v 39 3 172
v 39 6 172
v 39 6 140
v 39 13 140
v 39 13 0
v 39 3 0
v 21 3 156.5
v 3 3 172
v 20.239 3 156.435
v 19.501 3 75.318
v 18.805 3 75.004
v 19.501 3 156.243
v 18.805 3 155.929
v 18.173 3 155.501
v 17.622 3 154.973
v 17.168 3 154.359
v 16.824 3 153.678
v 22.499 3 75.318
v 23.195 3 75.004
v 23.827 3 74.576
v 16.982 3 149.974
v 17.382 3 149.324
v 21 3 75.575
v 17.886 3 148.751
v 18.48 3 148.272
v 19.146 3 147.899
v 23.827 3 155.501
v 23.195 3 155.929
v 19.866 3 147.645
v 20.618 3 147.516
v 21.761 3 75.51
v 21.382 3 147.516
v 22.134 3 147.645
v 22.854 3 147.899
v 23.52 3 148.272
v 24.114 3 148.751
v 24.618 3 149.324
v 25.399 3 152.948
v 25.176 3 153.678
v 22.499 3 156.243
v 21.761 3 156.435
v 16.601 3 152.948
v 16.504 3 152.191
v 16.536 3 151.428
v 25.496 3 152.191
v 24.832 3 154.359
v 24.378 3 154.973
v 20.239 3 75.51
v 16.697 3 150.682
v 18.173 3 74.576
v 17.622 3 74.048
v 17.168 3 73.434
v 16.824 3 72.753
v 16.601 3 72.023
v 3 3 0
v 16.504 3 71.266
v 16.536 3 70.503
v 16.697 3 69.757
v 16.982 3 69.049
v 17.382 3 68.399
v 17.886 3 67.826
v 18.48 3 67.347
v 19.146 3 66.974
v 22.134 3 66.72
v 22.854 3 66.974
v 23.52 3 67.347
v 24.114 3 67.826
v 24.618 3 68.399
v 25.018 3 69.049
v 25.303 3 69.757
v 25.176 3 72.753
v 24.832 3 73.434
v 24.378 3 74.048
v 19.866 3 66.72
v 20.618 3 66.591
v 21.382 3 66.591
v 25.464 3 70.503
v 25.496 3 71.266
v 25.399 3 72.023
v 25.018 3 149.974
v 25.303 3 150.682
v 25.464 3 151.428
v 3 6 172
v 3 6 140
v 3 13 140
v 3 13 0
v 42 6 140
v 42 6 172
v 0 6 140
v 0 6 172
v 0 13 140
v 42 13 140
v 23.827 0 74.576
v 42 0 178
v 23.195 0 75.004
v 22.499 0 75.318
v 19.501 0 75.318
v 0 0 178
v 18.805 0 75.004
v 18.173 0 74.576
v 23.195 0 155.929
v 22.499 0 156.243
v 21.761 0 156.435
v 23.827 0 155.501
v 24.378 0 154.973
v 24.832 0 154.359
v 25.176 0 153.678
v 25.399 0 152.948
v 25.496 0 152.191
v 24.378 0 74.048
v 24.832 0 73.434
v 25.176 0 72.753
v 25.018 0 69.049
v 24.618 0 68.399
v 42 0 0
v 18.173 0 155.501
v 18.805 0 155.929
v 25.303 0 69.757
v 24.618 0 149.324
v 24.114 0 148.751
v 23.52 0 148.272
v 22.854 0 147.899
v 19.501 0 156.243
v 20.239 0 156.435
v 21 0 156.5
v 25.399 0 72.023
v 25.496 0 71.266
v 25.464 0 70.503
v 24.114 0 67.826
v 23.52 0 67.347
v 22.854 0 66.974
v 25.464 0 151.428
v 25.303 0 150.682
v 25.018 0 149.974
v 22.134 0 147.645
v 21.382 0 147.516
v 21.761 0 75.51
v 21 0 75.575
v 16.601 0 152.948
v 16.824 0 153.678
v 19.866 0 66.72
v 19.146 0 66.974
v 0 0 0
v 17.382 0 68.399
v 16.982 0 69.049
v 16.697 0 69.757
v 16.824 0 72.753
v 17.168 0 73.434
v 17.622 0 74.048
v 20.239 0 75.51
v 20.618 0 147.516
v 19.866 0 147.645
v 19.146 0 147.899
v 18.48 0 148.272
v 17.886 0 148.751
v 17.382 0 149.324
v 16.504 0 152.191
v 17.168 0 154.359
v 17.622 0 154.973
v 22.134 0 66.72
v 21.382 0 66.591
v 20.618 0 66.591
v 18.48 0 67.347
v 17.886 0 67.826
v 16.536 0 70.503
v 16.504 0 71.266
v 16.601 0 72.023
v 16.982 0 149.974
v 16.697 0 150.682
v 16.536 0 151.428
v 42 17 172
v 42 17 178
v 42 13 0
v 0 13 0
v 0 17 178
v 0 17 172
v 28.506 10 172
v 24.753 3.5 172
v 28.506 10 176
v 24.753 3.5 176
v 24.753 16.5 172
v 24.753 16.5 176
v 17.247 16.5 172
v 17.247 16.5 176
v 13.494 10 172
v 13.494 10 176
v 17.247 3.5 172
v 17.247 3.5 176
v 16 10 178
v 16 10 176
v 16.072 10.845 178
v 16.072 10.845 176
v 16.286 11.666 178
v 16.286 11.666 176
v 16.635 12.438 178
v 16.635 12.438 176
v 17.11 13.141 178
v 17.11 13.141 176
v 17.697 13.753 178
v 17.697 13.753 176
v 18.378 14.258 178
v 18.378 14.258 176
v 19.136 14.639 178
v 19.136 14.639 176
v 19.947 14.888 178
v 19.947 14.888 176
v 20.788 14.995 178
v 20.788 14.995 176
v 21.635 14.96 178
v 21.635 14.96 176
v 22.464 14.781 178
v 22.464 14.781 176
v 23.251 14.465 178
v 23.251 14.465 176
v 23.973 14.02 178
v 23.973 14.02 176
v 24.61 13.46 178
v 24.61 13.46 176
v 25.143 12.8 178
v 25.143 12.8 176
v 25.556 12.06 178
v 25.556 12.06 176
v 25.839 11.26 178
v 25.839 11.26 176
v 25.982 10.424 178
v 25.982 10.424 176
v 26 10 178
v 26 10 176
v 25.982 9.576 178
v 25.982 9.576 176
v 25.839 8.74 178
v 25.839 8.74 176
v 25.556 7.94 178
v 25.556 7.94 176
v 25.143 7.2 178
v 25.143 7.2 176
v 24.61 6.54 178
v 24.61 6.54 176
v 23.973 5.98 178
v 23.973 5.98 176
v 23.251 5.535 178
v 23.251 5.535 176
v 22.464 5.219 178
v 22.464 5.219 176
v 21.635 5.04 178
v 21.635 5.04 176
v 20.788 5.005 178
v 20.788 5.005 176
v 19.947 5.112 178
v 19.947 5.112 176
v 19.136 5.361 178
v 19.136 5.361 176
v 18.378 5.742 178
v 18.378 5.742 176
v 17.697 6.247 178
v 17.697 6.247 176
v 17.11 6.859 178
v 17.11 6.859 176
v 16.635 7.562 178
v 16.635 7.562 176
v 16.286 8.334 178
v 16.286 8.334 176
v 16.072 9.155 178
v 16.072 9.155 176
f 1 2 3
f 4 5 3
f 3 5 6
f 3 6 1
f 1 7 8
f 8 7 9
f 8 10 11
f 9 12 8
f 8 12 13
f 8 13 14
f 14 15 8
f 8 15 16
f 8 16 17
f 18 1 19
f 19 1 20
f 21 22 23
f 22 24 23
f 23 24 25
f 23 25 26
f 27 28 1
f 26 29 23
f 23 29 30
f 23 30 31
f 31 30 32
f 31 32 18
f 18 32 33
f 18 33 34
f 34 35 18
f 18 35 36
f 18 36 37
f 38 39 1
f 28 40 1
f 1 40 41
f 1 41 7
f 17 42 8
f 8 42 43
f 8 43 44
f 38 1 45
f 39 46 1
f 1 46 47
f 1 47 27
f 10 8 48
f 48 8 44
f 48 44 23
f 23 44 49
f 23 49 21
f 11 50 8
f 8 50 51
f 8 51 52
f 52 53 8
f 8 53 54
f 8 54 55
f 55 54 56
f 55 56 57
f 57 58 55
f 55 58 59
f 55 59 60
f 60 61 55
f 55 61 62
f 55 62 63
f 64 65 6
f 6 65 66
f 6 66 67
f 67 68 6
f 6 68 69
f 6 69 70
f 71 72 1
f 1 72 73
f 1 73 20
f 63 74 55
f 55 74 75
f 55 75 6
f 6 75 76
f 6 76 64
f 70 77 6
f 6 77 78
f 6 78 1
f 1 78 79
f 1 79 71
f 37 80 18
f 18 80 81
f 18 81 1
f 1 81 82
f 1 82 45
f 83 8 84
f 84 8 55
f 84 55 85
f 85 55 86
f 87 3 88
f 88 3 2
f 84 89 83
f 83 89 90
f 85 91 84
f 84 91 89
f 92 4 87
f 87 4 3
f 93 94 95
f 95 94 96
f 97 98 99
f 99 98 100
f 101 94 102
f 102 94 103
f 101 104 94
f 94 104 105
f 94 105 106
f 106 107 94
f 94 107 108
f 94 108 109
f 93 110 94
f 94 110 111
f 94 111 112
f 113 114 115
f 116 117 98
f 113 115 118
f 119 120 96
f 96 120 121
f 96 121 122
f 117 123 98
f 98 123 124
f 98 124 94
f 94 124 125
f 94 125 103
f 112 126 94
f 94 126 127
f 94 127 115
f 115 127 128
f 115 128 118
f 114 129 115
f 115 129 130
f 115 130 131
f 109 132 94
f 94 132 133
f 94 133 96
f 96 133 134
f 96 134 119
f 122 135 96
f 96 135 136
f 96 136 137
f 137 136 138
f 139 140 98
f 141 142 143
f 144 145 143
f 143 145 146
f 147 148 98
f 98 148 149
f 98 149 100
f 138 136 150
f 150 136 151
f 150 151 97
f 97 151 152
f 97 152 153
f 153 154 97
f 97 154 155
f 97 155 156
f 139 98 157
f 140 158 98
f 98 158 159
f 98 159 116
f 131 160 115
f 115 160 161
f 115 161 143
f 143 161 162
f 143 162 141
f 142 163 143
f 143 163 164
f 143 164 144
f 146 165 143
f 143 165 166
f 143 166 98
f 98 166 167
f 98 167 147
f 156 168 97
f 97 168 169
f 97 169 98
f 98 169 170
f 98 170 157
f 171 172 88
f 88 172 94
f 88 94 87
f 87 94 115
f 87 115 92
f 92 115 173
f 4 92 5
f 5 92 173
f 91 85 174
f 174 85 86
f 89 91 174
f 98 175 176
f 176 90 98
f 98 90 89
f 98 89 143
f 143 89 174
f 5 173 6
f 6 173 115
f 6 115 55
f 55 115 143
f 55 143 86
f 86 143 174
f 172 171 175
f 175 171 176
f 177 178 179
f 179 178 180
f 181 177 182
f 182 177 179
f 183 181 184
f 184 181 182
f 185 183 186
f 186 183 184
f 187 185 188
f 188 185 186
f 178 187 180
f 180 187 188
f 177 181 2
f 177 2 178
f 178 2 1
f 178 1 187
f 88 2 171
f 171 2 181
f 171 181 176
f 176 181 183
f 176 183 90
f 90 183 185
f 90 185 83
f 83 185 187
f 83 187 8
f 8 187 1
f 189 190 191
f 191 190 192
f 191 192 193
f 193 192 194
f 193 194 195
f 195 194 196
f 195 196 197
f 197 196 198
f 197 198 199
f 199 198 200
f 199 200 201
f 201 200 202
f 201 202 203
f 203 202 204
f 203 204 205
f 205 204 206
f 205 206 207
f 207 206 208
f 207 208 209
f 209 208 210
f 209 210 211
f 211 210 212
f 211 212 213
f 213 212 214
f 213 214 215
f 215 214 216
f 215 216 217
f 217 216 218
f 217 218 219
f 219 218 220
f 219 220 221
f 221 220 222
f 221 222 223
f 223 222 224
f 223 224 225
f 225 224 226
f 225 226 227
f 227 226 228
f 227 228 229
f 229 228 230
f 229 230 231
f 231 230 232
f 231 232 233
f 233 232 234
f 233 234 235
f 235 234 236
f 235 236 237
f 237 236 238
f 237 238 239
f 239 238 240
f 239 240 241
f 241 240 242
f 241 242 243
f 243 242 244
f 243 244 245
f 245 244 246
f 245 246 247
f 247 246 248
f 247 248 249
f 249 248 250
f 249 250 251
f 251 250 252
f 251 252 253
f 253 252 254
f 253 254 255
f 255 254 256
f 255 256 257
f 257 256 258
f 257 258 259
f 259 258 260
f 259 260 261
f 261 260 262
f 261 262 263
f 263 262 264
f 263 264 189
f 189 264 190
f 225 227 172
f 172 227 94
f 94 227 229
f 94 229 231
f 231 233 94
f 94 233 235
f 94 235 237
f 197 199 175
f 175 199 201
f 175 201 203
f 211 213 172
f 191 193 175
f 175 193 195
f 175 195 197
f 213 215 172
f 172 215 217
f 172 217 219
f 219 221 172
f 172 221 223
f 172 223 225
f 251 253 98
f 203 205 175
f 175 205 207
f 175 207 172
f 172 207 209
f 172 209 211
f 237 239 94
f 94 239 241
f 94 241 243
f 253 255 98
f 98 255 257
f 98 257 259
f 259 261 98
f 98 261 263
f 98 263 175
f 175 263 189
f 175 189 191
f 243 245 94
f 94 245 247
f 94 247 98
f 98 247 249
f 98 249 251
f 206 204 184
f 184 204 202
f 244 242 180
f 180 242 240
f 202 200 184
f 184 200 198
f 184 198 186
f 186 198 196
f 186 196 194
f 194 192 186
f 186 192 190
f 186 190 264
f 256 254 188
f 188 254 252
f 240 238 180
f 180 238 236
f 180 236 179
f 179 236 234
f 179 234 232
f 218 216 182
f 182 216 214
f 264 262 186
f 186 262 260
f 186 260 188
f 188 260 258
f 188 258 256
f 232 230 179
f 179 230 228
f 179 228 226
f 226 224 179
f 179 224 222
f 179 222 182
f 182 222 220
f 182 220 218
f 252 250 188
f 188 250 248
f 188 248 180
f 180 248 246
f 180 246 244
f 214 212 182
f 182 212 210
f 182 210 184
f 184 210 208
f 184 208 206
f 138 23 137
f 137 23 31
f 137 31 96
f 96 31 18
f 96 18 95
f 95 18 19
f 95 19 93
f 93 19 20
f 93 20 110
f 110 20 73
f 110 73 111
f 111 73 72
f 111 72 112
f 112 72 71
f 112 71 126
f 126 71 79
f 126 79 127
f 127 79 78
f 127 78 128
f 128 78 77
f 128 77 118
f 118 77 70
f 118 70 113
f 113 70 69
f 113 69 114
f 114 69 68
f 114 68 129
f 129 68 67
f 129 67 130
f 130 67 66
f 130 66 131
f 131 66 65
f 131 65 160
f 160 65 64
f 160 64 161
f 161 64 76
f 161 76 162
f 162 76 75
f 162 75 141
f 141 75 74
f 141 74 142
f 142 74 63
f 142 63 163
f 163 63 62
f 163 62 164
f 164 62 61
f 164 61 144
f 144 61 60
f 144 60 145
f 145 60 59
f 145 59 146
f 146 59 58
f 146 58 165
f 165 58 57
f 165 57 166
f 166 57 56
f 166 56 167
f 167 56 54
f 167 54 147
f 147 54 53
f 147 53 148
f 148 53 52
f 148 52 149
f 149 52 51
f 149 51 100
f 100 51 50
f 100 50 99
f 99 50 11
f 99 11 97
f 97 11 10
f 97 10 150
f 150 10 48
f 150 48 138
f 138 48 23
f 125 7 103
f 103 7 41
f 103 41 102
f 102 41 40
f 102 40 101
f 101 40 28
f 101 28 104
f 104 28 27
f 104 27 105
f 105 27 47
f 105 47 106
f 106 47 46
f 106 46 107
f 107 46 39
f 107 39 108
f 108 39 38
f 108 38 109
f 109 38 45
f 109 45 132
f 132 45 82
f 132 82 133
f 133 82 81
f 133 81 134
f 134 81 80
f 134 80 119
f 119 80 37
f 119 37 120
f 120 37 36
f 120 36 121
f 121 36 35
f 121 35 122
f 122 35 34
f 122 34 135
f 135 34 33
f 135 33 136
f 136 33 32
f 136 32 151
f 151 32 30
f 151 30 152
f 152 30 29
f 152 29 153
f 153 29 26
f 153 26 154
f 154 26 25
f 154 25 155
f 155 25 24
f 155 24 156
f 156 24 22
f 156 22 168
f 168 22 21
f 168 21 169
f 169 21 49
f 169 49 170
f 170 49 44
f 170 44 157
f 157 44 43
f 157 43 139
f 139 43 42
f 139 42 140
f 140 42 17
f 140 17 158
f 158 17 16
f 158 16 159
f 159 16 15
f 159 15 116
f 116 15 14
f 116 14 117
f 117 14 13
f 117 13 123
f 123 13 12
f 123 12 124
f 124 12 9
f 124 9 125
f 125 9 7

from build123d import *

# Parameters (mm, degrees)
BOSS_EXTRUDE1_DEPTH = 140
BOSS_EXTRUDE2_DEPTH = 36
BOSS_EXTRUDE3_DEPTH = 4
SKETCH3_3_W         = 42
SKETCH3_3_H         = 17
SKETCH3_3_R         = 5
BOSS_EXTRUDE4_DEPTH = 2
SKETCH4_R           = 4.5
CUT_EXTRUDE1_DEPTH  = 184.423008371


with BuildPart() as part:
    # Sketch1 → Boss-Extrude1 (new body)
    with BuildSketch(Plane.XY):
        Polygon((0, 0), (0, 13), (3, 13), (3, 3), (39, 3), (39, 13), (42, 13), (42, 0), align=None)
    extrude(amount=BOSS_EXTRUDE1_DEPTH)

    # Sketch2 → Boss-Extrude2 (add)
    with BuildSketch(Plane.XY.offset(140)):
        Polygon((0, 0), (42, 0), (42, 6), (39, 6), (39, 3), (3, 3), (3, 6), (0, 6), align=None)
    extrude(amount=BOSS_EXTRUDE2_DEPTH)

    # Sketch3 → Boss-Extrude3 (add)
    with BuildSketch(Plane.XY.offset(176)):
        Polygon((0, 17), (0, 6), (3, 6), (3, 3), (39, 3), (39, 6), (42, 6), (42, 17), align=None)
        Polygon((24.75277675, 16.5), (28.505553499, 10), (24.75277675, 3.5), (17.24722325, 3.5), (13.494446501, 10), (17.24722325, 16.5), align=None, mode=Mode.SUBTRACT)
    extrude(amount=-BOSS_EXTRUDE3_DEPTH)

    # Sketch3<3> → Boss-Extrude4 (add)
    with BuildSketch(Plane.XY.offset(176)):
        with Locations((21, 8.5)):
            Rectangle(SKETCH3_3_W, SKETCH3_3_H)
        with Locations((21, 10)):
            Circle(SKETCH3_3_R, mode=Mode.SUBTRACT)
    extrude(amount=BOSS_EXTRUDE4_DEPTH)

    # Sketch4 → Cut-Extrude1 (cut, through all)
    with BuildSketch(Plane(origin=(0, 3, 0), x_dir=(1, 0, 0), z_dir=(0, 1, 0))):
        with Locations((21, -152)):
            Circle(SKETCH4_R)
        with Locations((21, -71.075)):
            Circle(SKETCH4_R)
    extrude(amount=-CUT_EXTRUDE1_DEPTH, mode=Mode.SUBTRACT)


solid = part.part
